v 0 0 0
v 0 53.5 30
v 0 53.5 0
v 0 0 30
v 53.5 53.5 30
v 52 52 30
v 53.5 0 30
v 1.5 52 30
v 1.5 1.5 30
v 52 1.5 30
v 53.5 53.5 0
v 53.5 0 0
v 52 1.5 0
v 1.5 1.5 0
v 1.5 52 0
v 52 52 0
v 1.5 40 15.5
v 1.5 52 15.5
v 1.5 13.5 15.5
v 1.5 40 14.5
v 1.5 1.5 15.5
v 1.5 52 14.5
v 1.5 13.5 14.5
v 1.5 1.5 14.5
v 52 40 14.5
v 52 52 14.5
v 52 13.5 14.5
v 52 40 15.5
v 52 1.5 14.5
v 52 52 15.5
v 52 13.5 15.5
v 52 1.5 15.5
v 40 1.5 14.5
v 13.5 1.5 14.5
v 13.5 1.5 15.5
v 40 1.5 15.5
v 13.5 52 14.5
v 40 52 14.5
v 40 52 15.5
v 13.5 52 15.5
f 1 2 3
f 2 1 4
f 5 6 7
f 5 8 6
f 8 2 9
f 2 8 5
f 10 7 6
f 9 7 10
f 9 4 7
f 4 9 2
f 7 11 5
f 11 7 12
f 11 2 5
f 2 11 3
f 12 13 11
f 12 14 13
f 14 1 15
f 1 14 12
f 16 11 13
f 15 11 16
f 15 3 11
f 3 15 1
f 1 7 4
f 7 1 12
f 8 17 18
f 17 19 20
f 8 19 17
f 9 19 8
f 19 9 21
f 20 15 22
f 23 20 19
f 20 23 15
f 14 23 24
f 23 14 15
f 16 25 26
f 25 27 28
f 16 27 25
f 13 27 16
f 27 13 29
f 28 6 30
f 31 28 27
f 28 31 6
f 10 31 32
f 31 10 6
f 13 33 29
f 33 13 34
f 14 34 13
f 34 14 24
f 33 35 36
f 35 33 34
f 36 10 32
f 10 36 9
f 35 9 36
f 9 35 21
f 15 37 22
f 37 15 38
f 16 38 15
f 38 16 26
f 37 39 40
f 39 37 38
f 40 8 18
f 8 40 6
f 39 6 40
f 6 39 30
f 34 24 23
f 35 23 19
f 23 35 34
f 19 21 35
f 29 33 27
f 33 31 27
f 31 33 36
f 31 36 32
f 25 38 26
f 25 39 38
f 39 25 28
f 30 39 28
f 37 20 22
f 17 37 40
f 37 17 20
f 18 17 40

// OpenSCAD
innerSide = 50.3;
tol = 0.2;
z = 30;
wall = 1.5;
cornerSide = 12;
cornerZ = 1;


innerX = innerSide + tol;
innerY = innerSide + tol;

outerX = innerX + 2*wall;
outerY = innerY + 2*wall;

connector();

module connector() {
  difference() {
    cube([outerX, outerY, z]);
    translate([wall, wall, -1])
      cube([innerX, innerY, z + 2]);
  }
  translate([wall, wall, (z - cornerZ)/2])
    corner();

  translate([wall + innerX, wall, (z - cornerZ)/2])
    rotate(90, [0, 0, 1])
      corner();

  translate([wall + innerX, wall + innerY, (z - cornerZ)/2])
    rotate(180, [0, 0, 1])
      corner();

  translate([wall, wall + innerY, (z - cornerZ)/2])
    rotate(270, [0, 0, 1])
      corner();
}

module corner() {
  color("red")
    linear_extrude(height = cornerZ)
      polygon(points=[[0, 0], [cornerSide, 0], [0, cornerSide]]);
}
